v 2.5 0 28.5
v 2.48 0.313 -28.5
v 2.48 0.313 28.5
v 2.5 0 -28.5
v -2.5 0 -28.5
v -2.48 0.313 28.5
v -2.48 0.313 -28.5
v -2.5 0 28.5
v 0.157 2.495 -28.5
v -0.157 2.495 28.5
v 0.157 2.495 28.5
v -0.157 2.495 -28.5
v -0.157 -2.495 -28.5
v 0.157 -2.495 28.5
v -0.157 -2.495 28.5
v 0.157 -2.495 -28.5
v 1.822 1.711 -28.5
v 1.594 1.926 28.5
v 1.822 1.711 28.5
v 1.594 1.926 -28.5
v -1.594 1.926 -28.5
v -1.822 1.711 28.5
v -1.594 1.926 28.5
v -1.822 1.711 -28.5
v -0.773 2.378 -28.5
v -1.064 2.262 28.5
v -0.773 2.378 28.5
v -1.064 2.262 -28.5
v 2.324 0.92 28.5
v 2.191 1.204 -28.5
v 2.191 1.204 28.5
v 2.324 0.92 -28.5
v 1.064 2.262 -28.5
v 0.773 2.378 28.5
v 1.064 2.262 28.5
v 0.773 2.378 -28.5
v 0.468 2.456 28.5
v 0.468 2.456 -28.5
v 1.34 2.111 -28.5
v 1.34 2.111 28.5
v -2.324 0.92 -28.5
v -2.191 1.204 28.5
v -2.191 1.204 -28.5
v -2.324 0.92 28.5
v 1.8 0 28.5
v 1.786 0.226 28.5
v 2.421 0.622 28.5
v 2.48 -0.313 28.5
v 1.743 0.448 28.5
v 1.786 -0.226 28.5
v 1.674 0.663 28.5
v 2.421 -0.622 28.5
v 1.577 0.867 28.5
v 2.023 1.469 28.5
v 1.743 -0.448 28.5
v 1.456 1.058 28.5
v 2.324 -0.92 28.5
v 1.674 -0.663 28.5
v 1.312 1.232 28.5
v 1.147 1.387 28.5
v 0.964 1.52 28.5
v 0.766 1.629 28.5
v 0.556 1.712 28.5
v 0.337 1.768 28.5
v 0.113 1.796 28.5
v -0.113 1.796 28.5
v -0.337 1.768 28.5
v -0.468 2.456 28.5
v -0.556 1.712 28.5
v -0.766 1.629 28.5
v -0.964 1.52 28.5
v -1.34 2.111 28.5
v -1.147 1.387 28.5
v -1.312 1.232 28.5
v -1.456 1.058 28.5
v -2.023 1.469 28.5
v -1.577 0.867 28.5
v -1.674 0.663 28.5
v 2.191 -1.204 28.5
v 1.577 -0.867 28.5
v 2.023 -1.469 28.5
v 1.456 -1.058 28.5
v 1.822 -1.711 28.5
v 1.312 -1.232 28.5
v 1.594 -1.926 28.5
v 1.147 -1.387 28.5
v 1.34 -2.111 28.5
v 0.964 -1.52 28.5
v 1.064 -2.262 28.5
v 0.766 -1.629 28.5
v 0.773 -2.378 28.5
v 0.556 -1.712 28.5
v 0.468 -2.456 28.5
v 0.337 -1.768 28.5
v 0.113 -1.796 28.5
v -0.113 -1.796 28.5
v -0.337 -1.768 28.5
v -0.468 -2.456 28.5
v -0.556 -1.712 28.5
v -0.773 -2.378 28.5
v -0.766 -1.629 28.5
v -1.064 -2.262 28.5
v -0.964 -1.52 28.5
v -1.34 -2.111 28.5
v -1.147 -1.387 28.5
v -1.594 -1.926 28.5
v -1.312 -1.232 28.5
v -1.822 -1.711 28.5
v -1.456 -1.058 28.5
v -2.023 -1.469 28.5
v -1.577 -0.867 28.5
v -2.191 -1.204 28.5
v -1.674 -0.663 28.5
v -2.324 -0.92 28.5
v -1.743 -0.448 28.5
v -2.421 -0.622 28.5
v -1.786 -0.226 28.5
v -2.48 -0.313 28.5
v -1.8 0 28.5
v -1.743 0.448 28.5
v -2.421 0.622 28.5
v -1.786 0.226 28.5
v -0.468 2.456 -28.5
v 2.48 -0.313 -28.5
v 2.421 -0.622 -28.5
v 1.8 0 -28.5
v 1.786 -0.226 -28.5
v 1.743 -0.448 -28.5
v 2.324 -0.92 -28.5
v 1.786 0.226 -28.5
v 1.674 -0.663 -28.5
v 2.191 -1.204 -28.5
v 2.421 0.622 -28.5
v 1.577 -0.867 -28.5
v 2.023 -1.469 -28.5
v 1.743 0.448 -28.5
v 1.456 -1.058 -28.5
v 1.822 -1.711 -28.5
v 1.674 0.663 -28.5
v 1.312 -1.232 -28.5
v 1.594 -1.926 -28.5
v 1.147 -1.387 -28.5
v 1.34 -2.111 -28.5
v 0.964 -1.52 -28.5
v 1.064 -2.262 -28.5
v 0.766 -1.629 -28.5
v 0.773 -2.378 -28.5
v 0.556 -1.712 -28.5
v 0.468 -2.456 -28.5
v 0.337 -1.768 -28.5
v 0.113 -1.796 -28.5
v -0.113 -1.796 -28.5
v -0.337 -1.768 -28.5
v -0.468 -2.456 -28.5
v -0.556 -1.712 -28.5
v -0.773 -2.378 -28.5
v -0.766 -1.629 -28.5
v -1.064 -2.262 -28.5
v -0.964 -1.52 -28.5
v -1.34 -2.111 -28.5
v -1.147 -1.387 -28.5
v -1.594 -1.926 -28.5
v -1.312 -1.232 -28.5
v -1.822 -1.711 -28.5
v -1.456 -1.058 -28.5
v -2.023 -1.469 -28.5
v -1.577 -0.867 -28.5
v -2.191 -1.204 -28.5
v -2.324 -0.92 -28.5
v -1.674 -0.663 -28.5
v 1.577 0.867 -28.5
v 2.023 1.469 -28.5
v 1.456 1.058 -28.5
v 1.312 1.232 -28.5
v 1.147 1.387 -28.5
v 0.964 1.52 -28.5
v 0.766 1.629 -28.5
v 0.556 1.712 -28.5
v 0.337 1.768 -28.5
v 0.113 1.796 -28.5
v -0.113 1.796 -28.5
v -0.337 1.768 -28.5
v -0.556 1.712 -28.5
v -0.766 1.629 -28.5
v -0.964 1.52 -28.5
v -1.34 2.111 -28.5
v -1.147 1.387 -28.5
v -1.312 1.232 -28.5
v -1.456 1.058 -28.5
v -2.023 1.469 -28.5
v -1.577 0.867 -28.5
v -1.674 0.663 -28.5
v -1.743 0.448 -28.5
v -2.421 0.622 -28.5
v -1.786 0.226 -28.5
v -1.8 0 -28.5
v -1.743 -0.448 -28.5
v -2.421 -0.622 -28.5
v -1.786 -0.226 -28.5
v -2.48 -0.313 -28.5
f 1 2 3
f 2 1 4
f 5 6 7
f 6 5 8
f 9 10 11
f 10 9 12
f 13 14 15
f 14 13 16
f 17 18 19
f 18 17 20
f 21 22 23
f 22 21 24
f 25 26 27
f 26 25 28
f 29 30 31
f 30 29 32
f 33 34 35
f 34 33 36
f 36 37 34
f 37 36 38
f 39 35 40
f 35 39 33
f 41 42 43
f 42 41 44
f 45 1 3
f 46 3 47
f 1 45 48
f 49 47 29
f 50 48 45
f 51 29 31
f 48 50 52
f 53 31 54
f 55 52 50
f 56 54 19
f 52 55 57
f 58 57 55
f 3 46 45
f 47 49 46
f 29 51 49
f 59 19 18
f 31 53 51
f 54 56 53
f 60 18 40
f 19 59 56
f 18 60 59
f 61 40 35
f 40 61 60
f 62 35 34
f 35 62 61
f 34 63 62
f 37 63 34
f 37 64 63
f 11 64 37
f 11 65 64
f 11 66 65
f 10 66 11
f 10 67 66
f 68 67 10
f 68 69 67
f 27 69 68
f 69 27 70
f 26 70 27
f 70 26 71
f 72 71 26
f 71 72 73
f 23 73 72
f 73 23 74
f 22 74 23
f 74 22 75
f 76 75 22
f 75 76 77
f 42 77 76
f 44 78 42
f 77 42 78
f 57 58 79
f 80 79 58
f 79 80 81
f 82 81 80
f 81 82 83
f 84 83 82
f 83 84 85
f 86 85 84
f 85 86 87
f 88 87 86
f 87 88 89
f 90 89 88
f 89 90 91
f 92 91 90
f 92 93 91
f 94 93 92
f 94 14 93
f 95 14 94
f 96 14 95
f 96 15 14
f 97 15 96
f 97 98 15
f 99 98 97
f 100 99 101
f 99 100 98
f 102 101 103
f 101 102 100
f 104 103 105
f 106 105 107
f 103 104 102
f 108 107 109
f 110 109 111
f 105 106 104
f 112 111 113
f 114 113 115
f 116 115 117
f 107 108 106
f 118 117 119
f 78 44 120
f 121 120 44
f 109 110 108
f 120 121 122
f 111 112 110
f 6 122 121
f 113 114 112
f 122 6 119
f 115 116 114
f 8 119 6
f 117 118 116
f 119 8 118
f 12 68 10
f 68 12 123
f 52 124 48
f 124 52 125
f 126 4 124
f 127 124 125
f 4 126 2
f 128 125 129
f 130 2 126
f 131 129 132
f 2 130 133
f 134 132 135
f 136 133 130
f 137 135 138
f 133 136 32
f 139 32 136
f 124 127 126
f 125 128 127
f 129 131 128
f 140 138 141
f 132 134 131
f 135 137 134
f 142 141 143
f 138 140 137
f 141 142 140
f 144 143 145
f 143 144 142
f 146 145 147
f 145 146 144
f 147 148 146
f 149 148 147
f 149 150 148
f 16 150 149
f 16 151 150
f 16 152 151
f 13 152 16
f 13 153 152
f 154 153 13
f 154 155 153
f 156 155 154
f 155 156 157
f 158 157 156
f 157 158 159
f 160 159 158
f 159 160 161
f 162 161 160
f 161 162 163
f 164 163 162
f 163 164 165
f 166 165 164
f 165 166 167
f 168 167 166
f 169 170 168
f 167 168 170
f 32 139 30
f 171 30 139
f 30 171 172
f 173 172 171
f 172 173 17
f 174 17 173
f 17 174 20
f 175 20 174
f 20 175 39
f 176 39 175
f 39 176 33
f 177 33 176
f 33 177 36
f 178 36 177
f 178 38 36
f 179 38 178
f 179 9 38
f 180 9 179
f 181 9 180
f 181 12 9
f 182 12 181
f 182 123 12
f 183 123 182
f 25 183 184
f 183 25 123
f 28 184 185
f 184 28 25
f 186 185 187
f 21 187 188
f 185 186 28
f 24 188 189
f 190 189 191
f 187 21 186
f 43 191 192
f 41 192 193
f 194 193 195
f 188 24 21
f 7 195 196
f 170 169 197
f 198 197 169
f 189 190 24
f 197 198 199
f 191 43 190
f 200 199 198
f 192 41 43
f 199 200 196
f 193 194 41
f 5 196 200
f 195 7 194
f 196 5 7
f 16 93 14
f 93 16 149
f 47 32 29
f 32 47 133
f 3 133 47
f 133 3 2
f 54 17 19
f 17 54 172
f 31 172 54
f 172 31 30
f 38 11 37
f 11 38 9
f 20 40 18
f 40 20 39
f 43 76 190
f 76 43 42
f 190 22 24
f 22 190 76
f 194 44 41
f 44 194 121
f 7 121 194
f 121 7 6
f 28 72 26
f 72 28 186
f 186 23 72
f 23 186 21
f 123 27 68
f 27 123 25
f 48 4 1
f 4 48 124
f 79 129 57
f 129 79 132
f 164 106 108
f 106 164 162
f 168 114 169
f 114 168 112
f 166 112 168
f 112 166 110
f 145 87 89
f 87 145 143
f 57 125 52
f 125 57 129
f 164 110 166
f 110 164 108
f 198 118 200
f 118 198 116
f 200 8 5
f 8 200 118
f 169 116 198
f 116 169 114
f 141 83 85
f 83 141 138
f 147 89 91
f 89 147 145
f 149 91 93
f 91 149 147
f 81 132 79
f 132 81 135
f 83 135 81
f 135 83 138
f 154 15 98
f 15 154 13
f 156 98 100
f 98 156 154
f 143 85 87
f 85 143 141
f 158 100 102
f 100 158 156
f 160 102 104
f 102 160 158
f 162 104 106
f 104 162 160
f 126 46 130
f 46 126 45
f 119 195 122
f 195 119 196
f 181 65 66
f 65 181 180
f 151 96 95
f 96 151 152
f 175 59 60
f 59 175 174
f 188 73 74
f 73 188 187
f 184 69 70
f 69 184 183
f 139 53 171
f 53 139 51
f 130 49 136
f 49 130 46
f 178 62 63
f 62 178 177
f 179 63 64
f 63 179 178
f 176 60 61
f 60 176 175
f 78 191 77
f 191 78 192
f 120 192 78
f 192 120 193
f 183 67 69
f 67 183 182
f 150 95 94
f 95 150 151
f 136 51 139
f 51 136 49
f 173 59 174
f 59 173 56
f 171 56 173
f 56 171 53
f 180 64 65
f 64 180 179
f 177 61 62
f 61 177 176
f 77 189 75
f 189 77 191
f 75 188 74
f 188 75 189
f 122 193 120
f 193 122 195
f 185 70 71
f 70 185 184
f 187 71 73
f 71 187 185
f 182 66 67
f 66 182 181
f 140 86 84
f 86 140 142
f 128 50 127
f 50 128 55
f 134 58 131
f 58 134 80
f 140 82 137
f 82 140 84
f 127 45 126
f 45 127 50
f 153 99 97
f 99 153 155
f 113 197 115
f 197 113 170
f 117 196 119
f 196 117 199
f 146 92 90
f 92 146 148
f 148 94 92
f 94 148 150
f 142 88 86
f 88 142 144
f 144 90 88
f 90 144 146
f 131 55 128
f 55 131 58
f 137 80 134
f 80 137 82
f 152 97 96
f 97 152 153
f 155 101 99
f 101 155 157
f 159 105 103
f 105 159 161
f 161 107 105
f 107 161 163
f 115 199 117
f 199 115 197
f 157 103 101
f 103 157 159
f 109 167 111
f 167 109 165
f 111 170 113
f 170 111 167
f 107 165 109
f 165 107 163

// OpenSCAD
$fn = 50;


difference() {
	union() {
		translate(v = [0, 0, -28.5000000000]) {
			cylinder(h = 57, r = 2.5000000000);
		}
	}
	union() {
		translate(v = [0, 0, -100.0000000000]) {
			cylinder(h = 200, r = 1.8000000000);
		}
	}
}
